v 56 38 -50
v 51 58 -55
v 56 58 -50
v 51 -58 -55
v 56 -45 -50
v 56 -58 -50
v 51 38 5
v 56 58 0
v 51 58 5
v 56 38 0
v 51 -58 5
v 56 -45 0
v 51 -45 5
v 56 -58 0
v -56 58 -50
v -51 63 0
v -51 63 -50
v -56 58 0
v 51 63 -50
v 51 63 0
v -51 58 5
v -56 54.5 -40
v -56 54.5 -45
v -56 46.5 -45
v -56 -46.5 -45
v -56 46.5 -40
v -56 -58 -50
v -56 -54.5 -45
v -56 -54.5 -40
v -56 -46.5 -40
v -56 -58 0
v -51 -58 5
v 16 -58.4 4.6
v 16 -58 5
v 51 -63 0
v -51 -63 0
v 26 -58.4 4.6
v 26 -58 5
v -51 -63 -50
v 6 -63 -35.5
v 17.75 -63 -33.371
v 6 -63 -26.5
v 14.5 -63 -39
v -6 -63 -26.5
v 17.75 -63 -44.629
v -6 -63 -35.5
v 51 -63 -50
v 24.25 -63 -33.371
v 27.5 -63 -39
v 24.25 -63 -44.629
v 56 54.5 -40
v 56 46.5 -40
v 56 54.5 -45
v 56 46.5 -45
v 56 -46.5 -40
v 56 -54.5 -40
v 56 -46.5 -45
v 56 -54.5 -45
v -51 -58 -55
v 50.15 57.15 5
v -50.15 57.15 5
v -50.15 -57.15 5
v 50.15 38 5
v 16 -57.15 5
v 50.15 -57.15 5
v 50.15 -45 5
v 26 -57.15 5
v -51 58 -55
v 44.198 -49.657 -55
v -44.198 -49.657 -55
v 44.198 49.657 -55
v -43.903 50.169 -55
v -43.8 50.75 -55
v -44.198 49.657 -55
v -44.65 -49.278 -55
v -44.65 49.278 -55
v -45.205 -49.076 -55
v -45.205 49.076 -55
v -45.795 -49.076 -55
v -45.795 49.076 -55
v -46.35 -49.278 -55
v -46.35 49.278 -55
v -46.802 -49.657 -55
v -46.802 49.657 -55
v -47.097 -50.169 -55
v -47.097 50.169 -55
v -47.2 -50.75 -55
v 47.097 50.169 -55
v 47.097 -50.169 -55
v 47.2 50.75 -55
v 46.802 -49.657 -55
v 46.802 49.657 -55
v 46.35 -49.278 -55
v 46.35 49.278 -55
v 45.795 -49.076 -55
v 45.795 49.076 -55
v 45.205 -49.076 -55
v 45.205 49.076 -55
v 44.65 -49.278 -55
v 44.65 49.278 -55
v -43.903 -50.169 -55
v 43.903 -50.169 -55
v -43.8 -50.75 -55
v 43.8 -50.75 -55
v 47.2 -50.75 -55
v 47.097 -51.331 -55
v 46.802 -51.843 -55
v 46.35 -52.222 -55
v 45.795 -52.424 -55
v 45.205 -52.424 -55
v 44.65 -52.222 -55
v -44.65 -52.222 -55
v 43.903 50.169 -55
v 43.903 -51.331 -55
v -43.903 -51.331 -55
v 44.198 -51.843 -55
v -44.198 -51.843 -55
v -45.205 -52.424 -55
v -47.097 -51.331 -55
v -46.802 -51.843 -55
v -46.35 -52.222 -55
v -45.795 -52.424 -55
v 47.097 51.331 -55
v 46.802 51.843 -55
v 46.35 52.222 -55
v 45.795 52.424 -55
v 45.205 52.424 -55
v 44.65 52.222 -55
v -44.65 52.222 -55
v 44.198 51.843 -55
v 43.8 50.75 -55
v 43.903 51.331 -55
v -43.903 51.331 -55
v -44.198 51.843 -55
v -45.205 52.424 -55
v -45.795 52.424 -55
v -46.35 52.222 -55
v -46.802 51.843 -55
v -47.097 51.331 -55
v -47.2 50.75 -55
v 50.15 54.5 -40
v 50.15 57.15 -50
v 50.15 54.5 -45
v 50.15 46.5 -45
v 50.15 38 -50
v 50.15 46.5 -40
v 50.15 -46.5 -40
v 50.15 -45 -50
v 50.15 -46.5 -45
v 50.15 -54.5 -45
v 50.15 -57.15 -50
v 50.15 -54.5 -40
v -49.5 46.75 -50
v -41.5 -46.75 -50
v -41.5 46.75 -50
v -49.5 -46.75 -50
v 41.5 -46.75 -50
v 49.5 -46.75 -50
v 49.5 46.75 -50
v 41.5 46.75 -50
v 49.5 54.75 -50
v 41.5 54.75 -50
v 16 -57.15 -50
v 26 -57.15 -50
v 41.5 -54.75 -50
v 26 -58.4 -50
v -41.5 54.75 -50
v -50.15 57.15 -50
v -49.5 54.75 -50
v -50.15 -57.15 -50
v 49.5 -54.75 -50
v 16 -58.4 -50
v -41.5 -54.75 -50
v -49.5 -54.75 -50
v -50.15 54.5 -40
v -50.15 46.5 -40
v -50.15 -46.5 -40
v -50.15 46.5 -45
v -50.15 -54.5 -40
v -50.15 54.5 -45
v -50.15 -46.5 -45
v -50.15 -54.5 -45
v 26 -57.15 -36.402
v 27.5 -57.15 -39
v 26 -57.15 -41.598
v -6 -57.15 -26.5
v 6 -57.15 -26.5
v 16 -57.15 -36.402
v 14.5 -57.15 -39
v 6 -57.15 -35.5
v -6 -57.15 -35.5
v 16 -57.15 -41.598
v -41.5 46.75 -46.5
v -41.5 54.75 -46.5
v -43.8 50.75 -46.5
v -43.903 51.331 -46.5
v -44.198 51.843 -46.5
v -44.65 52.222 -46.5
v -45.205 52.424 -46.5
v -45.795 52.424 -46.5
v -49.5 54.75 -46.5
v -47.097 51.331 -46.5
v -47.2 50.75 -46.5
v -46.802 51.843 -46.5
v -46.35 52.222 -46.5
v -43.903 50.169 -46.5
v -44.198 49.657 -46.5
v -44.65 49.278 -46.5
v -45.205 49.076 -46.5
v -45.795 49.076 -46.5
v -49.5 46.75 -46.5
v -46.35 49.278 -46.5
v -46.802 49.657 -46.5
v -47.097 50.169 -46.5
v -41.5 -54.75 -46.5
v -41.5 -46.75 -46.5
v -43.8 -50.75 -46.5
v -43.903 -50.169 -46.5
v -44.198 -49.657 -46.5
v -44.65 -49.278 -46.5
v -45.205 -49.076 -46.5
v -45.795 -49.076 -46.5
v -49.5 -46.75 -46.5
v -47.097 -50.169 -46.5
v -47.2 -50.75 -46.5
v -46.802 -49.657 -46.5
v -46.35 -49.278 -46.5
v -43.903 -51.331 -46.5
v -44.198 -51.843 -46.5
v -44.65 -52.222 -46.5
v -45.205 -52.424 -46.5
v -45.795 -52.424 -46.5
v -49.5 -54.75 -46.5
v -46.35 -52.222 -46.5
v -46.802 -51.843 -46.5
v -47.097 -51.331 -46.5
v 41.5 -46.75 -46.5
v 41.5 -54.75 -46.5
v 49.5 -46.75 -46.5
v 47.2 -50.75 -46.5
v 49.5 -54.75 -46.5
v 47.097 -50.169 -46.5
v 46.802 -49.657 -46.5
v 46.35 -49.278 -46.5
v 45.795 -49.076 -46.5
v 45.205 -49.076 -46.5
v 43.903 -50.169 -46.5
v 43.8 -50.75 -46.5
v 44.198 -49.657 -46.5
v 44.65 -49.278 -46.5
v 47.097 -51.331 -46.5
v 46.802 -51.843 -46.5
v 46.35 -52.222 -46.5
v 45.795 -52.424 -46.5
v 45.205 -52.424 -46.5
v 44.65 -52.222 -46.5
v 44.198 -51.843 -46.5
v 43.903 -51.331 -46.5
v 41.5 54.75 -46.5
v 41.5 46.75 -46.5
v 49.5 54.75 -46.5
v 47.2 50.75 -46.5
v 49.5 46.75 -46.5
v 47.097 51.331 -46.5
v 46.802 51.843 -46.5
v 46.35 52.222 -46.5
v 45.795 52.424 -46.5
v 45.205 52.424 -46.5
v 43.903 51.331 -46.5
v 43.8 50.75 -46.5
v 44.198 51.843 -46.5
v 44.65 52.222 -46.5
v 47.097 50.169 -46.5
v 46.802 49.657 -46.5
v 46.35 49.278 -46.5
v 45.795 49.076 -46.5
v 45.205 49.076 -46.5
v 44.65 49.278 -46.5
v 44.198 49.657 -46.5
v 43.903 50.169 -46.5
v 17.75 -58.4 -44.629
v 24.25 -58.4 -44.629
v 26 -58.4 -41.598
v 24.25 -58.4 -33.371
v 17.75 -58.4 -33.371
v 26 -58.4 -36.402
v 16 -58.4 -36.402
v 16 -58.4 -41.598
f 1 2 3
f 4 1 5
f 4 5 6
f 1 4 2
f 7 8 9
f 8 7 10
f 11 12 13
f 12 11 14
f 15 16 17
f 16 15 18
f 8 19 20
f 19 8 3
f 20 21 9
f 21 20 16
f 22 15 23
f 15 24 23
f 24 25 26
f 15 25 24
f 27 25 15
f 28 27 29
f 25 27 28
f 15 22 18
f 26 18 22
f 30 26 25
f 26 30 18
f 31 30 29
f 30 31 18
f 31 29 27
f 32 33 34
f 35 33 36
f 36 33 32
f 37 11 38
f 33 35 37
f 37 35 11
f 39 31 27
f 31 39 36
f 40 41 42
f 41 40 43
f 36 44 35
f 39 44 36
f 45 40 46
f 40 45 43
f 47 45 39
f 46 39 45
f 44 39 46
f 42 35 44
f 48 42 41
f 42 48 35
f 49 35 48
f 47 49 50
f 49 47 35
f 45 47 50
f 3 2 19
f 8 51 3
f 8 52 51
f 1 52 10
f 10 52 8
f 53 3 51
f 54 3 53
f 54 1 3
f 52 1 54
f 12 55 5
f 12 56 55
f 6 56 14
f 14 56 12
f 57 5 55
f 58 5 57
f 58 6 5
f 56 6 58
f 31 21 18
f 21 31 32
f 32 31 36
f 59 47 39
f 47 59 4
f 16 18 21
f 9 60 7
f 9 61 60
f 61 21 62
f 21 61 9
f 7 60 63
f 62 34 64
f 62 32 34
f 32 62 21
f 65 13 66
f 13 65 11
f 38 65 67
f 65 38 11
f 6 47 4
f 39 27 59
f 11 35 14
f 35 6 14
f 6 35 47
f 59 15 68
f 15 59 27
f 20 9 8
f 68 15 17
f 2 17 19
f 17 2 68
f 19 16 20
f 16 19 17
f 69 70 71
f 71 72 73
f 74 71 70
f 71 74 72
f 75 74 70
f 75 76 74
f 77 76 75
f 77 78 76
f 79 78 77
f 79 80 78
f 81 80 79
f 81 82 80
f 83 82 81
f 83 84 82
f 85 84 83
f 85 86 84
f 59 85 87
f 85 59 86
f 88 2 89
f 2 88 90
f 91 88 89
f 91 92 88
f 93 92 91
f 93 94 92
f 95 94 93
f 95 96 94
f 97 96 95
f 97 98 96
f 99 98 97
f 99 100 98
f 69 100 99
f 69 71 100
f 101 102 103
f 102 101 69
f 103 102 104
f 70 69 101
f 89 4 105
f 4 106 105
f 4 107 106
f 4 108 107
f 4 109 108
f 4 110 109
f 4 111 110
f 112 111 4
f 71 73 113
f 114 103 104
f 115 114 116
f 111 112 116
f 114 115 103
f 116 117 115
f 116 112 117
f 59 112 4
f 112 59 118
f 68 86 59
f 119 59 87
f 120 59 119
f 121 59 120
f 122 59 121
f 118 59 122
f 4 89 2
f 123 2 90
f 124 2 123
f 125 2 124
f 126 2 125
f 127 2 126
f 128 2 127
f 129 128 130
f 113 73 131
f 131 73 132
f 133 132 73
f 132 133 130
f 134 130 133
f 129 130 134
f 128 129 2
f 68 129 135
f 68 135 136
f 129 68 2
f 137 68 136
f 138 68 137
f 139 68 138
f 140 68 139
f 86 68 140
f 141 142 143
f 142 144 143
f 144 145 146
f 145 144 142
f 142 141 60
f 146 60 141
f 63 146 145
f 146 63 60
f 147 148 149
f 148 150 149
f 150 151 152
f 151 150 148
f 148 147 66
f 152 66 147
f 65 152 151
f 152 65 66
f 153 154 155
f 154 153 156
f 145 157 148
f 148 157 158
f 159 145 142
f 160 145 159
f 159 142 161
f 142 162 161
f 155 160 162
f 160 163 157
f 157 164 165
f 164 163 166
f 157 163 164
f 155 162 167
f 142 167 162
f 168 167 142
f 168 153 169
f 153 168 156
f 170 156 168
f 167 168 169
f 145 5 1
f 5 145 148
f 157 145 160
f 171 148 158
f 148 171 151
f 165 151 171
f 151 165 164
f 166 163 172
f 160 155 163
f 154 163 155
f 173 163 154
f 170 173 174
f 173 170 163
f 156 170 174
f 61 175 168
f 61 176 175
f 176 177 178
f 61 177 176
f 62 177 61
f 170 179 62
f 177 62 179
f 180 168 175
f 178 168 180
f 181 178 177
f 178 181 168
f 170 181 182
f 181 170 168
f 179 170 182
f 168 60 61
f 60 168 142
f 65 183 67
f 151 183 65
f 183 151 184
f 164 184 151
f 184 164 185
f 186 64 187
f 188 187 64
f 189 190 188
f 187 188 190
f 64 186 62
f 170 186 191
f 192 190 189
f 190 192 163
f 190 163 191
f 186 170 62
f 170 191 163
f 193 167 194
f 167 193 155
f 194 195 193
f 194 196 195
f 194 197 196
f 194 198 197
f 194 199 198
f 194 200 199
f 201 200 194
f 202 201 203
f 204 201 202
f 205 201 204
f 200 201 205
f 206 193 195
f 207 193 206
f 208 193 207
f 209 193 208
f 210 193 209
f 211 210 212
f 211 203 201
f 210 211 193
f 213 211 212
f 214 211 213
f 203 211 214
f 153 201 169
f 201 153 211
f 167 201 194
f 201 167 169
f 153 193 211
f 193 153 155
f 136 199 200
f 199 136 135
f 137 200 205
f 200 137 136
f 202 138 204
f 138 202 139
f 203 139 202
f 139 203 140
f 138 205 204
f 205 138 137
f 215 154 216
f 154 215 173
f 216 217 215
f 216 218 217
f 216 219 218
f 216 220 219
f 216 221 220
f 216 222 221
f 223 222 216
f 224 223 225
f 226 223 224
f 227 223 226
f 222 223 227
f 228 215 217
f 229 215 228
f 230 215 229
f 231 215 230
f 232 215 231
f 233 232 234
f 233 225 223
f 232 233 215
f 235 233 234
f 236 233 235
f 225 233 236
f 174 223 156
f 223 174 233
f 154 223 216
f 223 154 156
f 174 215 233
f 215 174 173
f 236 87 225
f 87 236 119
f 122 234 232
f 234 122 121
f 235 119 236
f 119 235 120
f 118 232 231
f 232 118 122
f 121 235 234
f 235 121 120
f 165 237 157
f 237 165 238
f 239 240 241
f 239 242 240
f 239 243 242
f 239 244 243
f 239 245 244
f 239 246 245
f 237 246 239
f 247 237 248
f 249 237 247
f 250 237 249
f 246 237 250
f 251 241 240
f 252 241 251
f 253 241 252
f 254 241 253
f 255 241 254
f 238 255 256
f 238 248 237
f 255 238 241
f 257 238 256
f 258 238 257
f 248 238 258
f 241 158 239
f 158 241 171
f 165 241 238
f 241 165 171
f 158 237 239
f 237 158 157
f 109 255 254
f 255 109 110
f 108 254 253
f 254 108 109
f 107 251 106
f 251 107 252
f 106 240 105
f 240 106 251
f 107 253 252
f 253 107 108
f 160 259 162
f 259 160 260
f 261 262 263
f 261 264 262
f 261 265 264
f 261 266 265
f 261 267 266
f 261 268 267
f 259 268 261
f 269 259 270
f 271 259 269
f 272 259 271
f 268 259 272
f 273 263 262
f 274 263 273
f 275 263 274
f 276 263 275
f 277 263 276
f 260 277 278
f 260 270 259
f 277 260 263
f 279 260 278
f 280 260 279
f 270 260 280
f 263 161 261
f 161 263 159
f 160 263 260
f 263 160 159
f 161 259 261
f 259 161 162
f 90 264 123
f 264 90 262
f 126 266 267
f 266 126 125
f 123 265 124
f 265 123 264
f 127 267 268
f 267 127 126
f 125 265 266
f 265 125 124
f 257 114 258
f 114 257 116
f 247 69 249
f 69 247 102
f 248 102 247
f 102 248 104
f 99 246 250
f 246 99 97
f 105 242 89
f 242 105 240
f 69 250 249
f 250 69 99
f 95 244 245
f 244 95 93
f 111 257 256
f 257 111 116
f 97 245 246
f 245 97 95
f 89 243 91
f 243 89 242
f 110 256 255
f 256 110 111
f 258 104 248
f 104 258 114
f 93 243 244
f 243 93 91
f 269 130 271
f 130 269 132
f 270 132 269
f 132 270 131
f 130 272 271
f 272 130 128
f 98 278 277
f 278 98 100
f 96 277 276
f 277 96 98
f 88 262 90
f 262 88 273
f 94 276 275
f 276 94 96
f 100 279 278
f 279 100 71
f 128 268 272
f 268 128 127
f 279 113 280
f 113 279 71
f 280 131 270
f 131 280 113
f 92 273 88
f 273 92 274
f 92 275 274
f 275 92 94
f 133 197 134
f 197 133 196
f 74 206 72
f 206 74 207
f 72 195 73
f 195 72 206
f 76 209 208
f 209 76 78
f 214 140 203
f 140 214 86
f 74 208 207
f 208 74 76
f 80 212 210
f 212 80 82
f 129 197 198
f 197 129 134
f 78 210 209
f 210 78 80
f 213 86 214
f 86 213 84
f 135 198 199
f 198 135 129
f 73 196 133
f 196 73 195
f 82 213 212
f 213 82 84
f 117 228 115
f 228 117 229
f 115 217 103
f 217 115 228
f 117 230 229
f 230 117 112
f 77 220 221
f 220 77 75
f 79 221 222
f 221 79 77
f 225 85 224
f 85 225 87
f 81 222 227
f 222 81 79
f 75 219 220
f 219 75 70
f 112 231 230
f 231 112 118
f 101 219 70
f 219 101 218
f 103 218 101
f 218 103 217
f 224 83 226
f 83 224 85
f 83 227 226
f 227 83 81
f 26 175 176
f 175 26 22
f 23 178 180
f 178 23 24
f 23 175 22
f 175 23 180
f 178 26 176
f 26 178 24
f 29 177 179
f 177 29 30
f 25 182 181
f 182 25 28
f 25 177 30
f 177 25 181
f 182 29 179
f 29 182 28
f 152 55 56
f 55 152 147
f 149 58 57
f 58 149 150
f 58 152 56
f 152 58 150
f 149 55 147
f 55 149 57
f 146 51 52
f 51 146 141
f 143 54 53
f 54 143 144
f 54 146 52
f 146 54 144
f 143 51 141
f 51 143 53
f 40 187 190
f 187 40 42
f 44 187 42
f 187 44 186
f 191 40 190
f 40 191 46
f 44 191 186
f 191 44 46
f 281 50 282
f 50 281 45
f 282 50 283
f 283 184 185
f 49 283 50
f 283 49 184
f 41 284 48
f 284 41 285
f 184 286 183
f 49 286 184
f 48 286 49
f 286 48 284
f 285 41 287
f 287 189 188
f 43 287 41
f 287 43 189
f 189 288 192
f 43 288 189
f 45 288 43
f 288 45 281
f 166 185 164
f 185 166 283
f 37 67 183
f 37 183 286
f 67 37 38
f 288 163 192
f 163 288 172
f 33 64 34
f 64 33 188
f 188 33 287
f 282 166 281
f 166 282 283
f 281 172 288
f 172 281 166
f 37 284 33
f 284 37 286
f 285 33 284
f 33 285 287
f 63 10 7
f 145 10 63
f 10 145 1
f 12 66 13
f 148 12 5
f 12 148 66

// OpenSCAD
module base(x, y, h=5, slot=true, hr=0.25, outer=true, hole_diam=3.4){
    // x and y refer to screw hole positions
    translate([-1*x/2,y/2,0])screw_post(h, slot=slot, hole_ratio=hr,outer=outer,hole_diam=hole_diam);
    translate([-1*x/2,-1*y/2,0])screw_post(h, slot=slot, hole_ratio=hr,outer=outer,hole_diam=hole_diam);
    rotate([0,0,180]){
        translate([-1*x/2,y/2,0])screw_post(h, slot=slot, hole_ratio=hr,outer=outer,hole_diam=hole_diam);
        translate([-1*x/2,-1*y/2,0])screw_post(h, slot=slot, hole_ratio=hr,outer=outer,hole_diam=hole_diam);
    }//end rotate
    
}// end module base

//base(91,101); // board x=91 y=101

//base(91,101,h=45,hr=0.5);


//base(75,32); // lcd

module screw_post(height, nut_h=2.8,slot=true, hole_ratio=0.25,outer=true,hole_diam=3.4){
    translate([0,0,height/2])difference(){
        if(outer==true){
            // shell
            cube([8,8,height],center=true);}
        // cutouts
        union(){
            // center hole
            translate([0,0,height/2]){rotate([180,0,0])cylinder(d=hole_diam, h= height*hole_ratio, $fn=18);}
            
            if(slot==true){
            // nut
            translate([0,0,height/2-3])cylinder(d=6.95, h= nut_h, center=true,$fn=6);
            // side exit
            translate([-5,0,height/2-3])cube([10,6,nut_h],center=true);
            // overhang trick
            translate([0,0,height/2-1.6])cube([3.4,6,0.3],center=true);}//end if
        }
        
    }// end difference
}// end module screw_post

//screw_post(20,hole_ratio=0.25);


module ena1j(){ // model of the rotary encoder
    cube([21.5,16,18.5],center=true);
    translate([21.5/2-9.53,0,18.5/2])cylinder(d=9.8,h=6.35,$fn=28);
    translate([21.5/2-9.53,8,18.5/2]){difference(){
        cylinder(h=1.7,d=3,$fn=18);
        translate([0,3.5/2,0])cube(3.5,center=true);
    }//end difference
    }//end translate
}//end ena1j

//ena1j();

module lcd(){
    // screen
    cube([24.5,71.5,8],center=true);
    
    // space for soldered pins
    translate([(24.5+6.6)/2,71.5/2-42/2,-3.3/2])cube([6.6,42,3.3],center=true);
    
    // space for part of backlight
    translate([0,(71.5+4.6)/-2,2.85/2-3.3])cube([24.5,4.6,2.85],center=true);
    
    //screw holes
    translate([16,75/2,0])cylinder(d=3.4,h=15, center=true, $fn=18);
    translate([-15,75/2,0])cylinder(d=3.4,h=15, center=true, $fn=18);
    translate([16,-75/2,0])cylinder(d=3.4,h=15, center=true, $fn=18);
    translate([-15 ,-75/2,0])cylinder(d=3.4,h=15, center=true, $fn=18);
}// end lcd

//lcd();

module pwr_switch(){
    cube([13, 7,8.9],center=true);
    translate([0,0,8.9/2])cylinder(d=6.8,h=8.9,$fn=25);
    translate([6.1,0,8.9/2])cylinder(d=2.5,h=3,$fn=18);
}// end module pwr_switch

//pwr_switch();

module push_switch(){
    cube([6.9,8.4,8.4],center=true);
    translate([0,0,4.2])cylinder(d=5,h=5.6,$fn=18);
}//end module push_switch

//push_switch();

module feet(d, screw_d, head_d, h){
    $fn = 28;
    difference(){
        cylinder(d=d, h=h);
        cylinder(d = screw_d, h=h);
        cylinder(d=head_d, h=h*2/3);
    }//end difference
}// end module feet


module fancy_box(x,y,z,thickness){
    hull(){
        cube([x+thickness,y,z],center=true);
        cube([x,y+thickness,z],center=true);
        cube([x,y,z+thickness],center=true);
    }//end hull
}//end fancy_box


module top_enclosure(x, y, z, h){
    enj_depth = -8;
    enj_x = -30;
    enj_y = 35;
    difference(){
    union(){
        translate([0,0,z/2])difference(){
        cube([x, y, z], center=true);
        union(){
            translate([25,0,0.75])lcd();
            
            translate([5,-5,0]){ // ena1j encoders
            translate([enj_x,enj_y,enj_depth])ena1j();
            translate([enj_x,0,enj_depth])ena1j();
            translate([enj_x,-1*enj_y,enj_depth])ena1j();
            }// end translate
            
            translate([25,-48,-3.5])pwr_switch();
            
            translate([5,0,0]){ // push switches
            translate([0,48,-3.2])push_switch();
            translate([-20,48,-3.2])push_switch();
            }// end translate
        }//end union
        }//end difference
        rotate([180,0,0])base(91,101.5,h,hr=0.5);
    }
    translate([0,0,5-1])top_markings();
    }//end difference
}//end module top_lvl


module top_markings(){
    assert(ord("\u0000") == 32);
    rotate([0,0,-90]){
        linear_extrude(1.5){
        translate([-30,-35,0])text("X",halign="center",valign="center");
        translate([5,-35,0])text("Y",halign="center",valign="center");
        translate([40,-35,0])text("Z",halign="center",valign="center");
        
        translate([-49,15,0])text("Ø",halign="center",valign="center");
        //translate([-49,-15,0])text("\u2714",halign="center",valign="center");
        
        translate([48,38,0]){scale([1,0.6,1])text("l",halign="center",valign="center");}
        translate([48,15,0]){scale([1,1,1])text("o",halign="center",valign="center");}
    }//end linear_extrude
    }//end rotate
}//end top_markings


module outer_enclosure(x=102, y=116, z=50){
    inner_dims = [100.3,114.3,60];
    thickness=10;
    difference(){
        union(){
    difference(){
        translate([0,0,-z/2+5-thickness/2])fancy_box(x,y,z,10);
        translate([0,0,-20])cube(inner_dims,center=true);
    }//end difference
    //stands
    translate([0,0,-z-thickness/2+3.5])base(91,101.5,5, slot=false);
    } // end union
    //screw holes
    translate([0,0,-z-thickness/2])base(91,101.5,20, hr=1, slot=false,outer=false);
    //nut slots for outer access (just in case)
    translate([0,0,-z-thickness/2+10])base(106,101,5, slot=false, hr=-1);
    //usb hole
    translate([0,-y/2,-31])cube([12,15,9],center=true);
    //power port
    translate([21,-y/2,-39]){rotate([90,0,0])cylinder(d=13,h=15,$fn=6,center=true);}
    //power port slot
    translate([21,-inner_dims[1]/2,5-z/2])cube([10,2.5,inner_dims[2]],center=true);
    // motor output
    translate([inner_dims[0]/2,-3.5,5-z/2])cube([20,83,inner_dims[2]],center=true);
}// end difference
}//end module outer_enclosure

%top_enclosure(100,114,5,45);
outer_enclosure();
//feet(8, 3.4, 5.6, 5); // print in TPU or something soft for grip
